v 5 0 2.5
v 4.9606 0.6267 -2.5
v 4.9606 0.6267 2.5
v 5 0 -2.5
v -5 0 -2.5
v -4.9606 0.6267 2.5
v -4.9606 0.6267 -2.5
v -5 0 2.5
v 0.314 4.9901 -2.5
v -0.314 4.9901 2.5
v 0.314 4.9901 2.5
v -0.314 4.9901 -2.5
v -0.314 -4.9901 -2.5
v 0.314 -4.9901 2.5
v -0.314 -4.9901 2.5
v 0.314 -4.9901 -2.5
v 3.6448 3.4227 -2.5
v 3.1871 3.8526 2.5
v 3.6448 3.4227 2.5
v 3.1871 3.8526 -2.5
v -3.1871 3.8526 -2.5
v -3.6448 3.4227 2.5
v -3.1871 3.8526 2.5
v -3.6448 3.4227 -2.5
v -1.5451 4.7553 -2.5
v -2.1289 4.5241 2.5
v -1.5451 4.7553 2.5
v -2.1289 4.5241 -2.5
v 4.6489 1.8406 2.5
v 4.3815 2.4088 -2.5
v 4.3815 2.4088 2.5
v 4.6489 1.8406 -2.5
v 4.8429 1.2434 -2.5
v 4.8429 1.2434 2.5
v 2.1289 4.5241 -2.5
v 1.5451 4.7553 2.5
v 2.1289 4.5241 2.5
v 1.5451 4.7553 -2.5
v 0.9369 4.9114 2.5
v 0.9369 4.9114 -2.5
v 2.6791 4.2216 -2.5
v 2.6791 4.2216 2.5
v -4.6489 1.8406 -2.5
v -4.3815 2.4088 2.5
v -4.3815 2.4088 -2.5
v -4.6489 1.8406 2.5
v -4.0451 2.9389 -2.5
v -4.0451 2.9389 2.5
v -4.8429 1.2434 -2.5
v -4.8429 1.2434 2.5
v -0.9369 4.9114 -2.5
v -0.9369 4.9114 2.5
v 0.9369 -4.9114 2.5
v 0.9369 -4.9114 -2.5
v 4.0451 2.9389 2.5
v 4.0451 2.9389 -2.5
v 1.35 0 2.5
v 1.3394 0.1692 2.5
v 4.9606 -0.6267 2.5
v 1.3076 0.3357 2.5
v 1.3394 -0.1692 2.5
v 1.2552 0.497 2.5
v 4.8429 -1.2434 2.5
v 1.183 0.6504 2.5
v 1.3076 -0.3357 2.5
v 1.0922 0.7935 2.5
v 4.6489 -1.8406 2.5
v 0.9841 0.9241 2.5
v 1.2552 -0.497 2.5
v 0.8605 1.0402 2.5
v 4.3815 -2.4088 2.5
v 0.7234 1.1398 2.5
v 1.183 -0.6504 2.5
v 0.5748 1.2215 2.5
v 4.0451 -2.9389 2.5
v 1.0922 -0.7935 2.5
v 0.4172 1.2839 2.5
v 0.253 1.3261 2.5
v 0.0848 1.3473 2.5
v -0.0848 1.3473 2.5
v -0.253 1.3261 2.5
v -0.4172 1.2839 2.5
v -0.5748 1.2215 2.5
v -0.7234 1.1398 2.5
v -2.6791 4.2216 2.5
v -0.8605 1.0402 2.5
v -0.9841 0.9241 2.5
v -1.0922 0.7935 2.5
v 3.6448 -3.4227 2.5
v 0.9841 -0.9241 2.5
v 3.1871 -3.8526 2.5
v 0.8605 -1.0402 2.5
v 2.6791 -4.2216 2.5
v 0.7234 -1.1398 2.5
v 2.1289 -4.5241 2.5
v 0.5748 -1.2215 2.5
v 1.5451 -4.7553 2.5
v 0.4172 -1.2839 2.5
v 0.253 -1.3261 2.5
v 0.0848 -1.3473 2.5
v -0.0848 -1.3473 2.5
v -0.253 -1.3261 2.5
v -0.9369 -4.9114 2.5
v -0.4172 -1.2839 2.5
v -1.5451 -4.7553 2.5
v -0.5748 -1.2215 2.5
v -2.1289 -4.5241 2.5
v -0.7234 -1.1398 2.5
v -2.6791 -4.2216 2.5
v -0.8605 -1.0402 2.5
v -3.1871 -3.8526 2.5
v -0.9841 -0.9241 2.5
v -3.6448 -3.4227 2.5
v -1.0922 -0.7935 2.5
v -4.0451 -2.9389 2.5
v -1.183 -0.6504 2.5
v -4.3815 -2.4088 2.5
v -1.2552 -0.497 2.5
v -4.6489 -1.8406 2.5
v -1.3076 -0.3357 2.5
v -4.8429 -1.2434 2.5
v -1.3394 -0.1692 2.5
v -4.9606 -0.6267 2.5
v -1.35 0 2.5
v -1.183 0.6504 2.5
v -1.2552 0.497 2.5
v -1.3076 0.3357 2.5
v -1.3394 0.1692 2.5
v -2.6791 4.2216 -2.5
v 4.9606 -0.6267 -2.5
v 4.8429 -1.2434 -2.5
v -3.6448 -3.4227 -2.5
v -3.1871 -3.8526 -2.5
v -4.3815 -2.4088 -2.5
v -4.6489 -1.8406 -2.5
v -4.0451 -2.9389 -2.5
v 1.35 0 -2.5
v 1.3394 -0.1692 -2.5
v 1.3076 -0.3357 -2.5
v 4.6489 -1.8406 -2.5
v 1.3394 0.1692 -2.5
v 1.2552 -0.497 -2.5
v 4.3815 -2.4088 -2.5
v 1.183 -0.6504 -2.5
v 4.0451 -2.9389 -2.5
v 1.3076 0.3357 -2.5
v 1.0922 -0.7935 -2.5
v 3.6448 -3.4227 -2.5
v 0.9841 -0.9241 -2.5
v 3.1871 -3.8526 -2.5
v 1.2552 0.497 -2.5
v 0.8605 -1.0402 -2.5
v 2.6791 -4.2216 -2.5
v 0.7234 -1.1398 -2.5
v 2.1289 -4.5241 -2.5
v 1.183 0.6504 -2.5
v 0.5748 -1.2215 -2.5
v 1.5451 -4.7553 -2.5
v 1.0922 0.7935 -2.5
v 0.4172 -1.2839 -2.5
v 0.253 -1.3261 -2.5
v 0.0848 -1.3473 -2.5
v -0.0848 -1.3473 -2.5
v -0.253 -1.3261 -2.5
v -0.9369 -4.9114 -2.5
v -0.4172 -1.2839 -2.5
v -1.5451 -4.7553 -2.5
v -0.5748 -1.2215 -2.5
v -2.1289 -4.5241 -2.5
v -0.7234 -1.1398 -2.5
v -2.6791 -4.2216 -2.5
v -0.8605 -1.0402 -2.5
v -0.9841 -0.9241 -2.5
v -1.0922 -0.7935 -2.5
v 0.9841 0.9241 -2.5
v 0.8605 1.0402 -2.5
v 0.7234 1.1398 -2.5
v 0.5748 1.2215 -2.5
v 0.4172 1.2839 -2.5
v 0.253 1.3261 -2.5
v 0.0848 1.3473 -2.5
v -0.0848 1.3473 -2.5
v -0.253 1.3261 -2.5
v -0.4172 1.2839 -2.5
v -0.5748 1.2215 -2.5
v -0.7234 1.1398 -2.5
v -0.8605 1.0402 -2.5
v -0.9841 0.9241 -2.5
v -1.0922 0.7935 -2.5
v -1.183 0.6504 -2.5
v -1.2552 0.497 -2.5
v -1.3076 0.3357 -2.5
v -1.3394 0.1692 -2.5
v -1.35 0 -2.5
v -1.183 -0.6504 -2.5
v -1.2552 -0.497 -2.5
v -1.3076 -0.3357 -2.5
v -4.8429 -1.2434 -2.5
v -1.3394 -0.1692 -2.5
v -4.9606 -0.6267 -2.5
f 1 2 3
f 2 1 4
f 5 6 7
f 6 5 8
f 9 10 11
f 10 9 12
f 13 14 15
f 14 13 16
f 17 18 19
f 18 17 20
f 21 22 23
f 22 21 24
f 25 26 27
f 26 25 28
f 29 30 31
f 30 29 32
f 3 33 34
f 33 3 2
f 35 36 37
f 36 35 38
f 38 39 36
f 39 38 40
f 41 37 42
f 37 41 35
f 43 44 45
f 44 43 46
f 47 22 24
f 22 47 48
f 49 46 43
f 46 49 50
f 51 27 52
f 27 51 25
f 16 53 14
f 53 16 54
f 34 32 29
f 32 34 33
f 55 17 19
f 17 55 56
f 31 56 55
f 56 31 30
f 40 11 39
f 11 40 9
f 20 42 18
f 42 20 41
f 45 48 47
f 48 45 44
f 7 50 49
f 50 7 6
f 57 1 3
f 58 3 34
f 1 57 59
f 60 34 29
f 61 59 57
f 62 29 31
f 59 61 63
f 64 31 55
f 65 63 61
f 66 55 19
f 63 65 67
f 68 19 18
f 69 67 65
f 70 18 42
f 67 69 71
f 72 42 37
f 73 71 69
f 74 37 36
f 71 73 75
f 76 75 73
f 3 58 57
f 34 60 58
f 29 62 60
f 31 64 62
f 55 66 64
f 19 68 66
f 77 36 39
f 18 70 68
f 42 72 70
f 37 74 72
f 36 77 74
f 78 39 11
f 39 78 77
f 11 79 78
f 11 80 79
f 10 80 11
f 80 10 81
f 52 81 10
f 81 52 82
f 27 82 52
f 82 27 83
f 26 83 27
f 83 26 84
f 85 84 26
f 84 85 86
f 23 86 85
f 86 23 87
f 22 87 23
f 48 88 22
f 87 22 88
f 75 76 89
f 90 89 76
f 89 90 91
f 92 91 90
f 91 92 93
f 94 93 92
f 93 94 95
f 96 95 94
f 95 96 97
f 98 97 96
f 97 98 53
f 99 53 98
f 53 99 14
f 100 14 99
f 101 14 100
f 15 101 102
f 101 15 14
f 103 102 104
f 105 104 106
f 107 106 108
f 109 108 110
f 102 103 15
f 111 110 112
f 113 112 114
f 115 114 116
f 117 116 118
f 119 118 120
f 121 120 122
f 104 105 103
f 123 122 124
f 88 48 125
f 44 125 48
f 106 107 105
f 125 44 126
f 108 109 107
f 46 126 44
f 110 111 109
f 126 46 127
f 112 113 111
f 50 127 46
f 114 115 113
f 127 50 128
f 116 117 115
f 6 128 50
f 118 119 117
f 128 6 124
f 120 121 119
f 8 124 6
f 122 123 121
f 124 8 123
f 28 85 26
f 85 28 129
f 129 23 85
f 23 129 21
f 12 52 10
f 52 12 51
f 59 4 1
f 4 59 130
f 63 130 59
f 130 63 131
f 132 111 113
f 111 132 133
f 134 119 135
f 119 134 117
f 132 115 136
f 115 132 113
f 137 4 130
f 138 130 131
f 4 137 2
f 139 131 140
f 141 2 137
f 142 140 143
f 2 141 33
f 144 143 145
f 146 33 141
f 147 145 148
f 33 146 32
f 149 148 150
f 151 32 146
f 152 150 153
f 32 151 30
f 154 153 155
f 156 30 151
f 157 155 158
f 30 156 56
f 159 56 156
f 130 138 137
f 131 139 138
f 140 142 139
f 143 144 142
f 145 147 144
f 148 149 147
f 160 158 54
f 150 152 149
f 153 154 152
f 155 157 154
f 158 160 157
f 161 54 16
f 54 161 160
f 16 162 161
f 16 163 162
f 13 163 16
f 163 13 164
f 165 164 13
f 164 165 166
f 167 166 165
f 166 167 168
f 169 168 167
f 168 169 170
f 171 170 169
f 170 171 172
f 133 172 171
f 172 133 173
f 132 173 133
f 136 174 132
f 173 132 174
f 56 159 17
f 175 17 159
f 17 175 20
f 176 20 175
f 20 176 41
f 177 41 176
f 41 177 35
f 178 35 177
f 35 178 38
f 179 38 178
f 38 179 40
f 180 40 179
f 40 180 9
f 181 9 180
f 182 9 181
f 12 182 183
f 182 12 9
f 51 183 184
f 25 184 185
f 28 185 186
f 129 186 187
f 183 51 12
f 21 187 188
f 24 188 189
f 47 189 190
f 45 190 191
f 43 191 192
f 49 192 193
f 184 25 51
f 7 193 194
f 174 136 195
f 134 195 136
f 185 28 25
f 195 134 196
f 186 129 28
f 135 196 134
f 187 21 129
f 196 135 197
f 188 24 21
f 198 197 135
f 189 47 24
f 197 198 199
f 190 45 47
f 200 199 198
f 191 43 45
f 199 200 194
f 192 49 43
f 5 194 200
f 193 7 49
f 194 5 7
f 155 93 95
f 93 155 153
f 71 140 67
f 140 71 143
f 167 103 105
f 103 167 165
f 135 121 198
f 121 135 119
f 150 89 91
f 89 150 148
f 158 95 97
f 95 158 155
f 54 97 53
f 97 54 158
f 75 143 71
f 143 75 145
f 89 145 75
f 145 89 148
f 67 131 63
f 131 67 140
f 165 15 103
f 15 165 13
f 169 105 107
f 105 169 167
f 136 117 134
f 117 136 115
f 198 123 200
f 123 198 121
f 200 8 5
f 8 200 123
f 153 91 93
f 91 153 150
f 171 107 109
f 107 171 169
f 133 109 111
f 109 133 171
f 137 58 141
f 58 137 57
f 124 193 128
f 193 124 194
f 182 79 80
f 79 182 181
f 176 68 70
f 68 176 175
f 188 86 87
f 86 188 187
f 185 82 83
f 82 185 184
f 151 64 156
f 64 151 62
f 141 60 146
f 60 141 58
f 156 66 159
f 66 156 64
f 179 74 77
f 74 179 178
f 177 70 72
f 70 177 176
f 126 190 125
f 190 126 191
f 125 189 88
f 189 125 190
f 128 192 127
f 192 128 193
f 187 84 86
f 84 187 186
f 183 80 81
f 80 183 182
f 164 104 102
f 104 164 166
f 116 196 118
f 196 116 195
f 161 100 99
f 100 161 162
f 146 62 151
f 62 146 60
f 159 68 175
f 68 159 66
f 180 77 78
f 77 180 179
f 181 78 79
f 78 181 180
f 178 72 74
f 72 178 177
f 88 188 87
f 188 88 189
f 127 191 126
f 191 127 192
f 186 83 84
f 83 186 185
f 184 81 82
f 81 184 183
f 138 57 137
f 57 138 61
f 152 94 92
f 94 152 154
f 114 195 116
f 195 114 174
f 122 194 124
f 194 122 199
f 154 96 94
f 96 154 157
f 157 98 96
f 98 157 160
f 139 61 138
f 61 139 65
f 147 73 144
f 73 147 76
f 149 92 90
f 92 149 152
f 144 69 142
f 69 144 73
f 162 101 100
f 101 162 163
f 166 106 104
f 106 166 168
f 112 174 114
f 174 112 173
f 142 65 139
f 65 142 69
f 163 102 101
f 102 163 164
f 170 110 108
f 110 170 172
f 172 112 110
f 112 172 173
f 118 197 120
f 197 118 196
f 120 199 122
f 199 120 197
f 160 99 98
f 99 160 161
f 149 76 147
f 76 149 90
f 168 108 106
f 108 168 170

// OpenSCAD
$fn = 50;


difference() {
	union() {
		translate(v = [0, 0, -2.5000000000]) {
			cylinder(h = 5, r = 5.0000000000);
		}
	}
	union() {
		translate(v = [0, 0, -100.0000000000]) {
			cylinder(h = 200, r = 1.3500000000);
		}
	}
}
